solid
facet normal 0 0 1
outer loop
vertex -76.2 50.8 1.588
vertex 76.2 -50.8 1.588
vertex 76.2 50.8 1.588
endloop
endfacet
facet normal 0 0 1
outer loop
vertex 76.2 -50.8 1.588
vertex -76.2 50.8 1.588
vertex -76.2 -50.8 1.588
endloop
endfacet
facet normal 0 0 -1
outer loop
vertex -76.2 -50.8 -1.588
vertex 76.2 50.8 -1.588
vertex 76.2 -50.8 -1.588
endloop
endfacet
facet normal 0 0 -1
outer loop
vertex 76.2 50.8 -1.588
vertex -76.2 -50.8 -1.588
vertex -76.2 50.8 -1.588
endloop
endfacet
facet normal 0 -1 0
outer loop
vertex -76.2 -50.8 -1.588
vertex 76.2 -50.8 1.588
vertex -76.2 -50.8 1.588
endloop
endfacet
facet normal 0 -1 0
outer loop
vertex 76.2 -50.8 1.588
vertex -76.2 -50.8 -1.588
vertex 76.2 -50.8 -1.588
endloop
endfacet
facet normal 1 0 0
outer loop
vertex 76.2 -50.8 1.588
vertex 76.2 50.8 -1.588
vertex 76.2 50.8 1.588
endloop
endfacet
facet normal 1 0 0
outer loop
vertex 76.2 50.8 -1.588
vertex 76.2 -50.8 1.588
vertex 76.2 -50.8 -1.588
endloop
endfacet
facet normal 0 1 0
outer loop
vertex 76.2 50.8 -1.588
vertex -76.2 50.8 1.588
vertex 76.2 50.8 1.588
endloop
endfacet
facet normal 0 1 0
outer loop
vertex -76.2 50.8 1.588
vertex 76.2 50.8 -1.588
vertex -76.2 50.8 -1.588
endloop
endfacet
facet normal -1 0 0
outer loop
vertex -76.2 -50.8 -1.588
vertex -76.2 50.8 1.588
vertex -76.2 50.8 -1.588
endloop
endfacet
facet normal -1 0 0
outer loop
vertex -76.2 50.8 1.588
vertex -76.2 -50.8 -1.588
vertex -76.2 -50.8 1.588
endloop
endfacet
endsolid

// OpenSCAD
// ========================================
// a 6 by 4 by 0.125 inch plate
// NeuroCAD canonical IR; dimensions are millimetres
// ========================================
$fn = 48;

cube(size=[152.4, 101.6, 3.175], center=true);
